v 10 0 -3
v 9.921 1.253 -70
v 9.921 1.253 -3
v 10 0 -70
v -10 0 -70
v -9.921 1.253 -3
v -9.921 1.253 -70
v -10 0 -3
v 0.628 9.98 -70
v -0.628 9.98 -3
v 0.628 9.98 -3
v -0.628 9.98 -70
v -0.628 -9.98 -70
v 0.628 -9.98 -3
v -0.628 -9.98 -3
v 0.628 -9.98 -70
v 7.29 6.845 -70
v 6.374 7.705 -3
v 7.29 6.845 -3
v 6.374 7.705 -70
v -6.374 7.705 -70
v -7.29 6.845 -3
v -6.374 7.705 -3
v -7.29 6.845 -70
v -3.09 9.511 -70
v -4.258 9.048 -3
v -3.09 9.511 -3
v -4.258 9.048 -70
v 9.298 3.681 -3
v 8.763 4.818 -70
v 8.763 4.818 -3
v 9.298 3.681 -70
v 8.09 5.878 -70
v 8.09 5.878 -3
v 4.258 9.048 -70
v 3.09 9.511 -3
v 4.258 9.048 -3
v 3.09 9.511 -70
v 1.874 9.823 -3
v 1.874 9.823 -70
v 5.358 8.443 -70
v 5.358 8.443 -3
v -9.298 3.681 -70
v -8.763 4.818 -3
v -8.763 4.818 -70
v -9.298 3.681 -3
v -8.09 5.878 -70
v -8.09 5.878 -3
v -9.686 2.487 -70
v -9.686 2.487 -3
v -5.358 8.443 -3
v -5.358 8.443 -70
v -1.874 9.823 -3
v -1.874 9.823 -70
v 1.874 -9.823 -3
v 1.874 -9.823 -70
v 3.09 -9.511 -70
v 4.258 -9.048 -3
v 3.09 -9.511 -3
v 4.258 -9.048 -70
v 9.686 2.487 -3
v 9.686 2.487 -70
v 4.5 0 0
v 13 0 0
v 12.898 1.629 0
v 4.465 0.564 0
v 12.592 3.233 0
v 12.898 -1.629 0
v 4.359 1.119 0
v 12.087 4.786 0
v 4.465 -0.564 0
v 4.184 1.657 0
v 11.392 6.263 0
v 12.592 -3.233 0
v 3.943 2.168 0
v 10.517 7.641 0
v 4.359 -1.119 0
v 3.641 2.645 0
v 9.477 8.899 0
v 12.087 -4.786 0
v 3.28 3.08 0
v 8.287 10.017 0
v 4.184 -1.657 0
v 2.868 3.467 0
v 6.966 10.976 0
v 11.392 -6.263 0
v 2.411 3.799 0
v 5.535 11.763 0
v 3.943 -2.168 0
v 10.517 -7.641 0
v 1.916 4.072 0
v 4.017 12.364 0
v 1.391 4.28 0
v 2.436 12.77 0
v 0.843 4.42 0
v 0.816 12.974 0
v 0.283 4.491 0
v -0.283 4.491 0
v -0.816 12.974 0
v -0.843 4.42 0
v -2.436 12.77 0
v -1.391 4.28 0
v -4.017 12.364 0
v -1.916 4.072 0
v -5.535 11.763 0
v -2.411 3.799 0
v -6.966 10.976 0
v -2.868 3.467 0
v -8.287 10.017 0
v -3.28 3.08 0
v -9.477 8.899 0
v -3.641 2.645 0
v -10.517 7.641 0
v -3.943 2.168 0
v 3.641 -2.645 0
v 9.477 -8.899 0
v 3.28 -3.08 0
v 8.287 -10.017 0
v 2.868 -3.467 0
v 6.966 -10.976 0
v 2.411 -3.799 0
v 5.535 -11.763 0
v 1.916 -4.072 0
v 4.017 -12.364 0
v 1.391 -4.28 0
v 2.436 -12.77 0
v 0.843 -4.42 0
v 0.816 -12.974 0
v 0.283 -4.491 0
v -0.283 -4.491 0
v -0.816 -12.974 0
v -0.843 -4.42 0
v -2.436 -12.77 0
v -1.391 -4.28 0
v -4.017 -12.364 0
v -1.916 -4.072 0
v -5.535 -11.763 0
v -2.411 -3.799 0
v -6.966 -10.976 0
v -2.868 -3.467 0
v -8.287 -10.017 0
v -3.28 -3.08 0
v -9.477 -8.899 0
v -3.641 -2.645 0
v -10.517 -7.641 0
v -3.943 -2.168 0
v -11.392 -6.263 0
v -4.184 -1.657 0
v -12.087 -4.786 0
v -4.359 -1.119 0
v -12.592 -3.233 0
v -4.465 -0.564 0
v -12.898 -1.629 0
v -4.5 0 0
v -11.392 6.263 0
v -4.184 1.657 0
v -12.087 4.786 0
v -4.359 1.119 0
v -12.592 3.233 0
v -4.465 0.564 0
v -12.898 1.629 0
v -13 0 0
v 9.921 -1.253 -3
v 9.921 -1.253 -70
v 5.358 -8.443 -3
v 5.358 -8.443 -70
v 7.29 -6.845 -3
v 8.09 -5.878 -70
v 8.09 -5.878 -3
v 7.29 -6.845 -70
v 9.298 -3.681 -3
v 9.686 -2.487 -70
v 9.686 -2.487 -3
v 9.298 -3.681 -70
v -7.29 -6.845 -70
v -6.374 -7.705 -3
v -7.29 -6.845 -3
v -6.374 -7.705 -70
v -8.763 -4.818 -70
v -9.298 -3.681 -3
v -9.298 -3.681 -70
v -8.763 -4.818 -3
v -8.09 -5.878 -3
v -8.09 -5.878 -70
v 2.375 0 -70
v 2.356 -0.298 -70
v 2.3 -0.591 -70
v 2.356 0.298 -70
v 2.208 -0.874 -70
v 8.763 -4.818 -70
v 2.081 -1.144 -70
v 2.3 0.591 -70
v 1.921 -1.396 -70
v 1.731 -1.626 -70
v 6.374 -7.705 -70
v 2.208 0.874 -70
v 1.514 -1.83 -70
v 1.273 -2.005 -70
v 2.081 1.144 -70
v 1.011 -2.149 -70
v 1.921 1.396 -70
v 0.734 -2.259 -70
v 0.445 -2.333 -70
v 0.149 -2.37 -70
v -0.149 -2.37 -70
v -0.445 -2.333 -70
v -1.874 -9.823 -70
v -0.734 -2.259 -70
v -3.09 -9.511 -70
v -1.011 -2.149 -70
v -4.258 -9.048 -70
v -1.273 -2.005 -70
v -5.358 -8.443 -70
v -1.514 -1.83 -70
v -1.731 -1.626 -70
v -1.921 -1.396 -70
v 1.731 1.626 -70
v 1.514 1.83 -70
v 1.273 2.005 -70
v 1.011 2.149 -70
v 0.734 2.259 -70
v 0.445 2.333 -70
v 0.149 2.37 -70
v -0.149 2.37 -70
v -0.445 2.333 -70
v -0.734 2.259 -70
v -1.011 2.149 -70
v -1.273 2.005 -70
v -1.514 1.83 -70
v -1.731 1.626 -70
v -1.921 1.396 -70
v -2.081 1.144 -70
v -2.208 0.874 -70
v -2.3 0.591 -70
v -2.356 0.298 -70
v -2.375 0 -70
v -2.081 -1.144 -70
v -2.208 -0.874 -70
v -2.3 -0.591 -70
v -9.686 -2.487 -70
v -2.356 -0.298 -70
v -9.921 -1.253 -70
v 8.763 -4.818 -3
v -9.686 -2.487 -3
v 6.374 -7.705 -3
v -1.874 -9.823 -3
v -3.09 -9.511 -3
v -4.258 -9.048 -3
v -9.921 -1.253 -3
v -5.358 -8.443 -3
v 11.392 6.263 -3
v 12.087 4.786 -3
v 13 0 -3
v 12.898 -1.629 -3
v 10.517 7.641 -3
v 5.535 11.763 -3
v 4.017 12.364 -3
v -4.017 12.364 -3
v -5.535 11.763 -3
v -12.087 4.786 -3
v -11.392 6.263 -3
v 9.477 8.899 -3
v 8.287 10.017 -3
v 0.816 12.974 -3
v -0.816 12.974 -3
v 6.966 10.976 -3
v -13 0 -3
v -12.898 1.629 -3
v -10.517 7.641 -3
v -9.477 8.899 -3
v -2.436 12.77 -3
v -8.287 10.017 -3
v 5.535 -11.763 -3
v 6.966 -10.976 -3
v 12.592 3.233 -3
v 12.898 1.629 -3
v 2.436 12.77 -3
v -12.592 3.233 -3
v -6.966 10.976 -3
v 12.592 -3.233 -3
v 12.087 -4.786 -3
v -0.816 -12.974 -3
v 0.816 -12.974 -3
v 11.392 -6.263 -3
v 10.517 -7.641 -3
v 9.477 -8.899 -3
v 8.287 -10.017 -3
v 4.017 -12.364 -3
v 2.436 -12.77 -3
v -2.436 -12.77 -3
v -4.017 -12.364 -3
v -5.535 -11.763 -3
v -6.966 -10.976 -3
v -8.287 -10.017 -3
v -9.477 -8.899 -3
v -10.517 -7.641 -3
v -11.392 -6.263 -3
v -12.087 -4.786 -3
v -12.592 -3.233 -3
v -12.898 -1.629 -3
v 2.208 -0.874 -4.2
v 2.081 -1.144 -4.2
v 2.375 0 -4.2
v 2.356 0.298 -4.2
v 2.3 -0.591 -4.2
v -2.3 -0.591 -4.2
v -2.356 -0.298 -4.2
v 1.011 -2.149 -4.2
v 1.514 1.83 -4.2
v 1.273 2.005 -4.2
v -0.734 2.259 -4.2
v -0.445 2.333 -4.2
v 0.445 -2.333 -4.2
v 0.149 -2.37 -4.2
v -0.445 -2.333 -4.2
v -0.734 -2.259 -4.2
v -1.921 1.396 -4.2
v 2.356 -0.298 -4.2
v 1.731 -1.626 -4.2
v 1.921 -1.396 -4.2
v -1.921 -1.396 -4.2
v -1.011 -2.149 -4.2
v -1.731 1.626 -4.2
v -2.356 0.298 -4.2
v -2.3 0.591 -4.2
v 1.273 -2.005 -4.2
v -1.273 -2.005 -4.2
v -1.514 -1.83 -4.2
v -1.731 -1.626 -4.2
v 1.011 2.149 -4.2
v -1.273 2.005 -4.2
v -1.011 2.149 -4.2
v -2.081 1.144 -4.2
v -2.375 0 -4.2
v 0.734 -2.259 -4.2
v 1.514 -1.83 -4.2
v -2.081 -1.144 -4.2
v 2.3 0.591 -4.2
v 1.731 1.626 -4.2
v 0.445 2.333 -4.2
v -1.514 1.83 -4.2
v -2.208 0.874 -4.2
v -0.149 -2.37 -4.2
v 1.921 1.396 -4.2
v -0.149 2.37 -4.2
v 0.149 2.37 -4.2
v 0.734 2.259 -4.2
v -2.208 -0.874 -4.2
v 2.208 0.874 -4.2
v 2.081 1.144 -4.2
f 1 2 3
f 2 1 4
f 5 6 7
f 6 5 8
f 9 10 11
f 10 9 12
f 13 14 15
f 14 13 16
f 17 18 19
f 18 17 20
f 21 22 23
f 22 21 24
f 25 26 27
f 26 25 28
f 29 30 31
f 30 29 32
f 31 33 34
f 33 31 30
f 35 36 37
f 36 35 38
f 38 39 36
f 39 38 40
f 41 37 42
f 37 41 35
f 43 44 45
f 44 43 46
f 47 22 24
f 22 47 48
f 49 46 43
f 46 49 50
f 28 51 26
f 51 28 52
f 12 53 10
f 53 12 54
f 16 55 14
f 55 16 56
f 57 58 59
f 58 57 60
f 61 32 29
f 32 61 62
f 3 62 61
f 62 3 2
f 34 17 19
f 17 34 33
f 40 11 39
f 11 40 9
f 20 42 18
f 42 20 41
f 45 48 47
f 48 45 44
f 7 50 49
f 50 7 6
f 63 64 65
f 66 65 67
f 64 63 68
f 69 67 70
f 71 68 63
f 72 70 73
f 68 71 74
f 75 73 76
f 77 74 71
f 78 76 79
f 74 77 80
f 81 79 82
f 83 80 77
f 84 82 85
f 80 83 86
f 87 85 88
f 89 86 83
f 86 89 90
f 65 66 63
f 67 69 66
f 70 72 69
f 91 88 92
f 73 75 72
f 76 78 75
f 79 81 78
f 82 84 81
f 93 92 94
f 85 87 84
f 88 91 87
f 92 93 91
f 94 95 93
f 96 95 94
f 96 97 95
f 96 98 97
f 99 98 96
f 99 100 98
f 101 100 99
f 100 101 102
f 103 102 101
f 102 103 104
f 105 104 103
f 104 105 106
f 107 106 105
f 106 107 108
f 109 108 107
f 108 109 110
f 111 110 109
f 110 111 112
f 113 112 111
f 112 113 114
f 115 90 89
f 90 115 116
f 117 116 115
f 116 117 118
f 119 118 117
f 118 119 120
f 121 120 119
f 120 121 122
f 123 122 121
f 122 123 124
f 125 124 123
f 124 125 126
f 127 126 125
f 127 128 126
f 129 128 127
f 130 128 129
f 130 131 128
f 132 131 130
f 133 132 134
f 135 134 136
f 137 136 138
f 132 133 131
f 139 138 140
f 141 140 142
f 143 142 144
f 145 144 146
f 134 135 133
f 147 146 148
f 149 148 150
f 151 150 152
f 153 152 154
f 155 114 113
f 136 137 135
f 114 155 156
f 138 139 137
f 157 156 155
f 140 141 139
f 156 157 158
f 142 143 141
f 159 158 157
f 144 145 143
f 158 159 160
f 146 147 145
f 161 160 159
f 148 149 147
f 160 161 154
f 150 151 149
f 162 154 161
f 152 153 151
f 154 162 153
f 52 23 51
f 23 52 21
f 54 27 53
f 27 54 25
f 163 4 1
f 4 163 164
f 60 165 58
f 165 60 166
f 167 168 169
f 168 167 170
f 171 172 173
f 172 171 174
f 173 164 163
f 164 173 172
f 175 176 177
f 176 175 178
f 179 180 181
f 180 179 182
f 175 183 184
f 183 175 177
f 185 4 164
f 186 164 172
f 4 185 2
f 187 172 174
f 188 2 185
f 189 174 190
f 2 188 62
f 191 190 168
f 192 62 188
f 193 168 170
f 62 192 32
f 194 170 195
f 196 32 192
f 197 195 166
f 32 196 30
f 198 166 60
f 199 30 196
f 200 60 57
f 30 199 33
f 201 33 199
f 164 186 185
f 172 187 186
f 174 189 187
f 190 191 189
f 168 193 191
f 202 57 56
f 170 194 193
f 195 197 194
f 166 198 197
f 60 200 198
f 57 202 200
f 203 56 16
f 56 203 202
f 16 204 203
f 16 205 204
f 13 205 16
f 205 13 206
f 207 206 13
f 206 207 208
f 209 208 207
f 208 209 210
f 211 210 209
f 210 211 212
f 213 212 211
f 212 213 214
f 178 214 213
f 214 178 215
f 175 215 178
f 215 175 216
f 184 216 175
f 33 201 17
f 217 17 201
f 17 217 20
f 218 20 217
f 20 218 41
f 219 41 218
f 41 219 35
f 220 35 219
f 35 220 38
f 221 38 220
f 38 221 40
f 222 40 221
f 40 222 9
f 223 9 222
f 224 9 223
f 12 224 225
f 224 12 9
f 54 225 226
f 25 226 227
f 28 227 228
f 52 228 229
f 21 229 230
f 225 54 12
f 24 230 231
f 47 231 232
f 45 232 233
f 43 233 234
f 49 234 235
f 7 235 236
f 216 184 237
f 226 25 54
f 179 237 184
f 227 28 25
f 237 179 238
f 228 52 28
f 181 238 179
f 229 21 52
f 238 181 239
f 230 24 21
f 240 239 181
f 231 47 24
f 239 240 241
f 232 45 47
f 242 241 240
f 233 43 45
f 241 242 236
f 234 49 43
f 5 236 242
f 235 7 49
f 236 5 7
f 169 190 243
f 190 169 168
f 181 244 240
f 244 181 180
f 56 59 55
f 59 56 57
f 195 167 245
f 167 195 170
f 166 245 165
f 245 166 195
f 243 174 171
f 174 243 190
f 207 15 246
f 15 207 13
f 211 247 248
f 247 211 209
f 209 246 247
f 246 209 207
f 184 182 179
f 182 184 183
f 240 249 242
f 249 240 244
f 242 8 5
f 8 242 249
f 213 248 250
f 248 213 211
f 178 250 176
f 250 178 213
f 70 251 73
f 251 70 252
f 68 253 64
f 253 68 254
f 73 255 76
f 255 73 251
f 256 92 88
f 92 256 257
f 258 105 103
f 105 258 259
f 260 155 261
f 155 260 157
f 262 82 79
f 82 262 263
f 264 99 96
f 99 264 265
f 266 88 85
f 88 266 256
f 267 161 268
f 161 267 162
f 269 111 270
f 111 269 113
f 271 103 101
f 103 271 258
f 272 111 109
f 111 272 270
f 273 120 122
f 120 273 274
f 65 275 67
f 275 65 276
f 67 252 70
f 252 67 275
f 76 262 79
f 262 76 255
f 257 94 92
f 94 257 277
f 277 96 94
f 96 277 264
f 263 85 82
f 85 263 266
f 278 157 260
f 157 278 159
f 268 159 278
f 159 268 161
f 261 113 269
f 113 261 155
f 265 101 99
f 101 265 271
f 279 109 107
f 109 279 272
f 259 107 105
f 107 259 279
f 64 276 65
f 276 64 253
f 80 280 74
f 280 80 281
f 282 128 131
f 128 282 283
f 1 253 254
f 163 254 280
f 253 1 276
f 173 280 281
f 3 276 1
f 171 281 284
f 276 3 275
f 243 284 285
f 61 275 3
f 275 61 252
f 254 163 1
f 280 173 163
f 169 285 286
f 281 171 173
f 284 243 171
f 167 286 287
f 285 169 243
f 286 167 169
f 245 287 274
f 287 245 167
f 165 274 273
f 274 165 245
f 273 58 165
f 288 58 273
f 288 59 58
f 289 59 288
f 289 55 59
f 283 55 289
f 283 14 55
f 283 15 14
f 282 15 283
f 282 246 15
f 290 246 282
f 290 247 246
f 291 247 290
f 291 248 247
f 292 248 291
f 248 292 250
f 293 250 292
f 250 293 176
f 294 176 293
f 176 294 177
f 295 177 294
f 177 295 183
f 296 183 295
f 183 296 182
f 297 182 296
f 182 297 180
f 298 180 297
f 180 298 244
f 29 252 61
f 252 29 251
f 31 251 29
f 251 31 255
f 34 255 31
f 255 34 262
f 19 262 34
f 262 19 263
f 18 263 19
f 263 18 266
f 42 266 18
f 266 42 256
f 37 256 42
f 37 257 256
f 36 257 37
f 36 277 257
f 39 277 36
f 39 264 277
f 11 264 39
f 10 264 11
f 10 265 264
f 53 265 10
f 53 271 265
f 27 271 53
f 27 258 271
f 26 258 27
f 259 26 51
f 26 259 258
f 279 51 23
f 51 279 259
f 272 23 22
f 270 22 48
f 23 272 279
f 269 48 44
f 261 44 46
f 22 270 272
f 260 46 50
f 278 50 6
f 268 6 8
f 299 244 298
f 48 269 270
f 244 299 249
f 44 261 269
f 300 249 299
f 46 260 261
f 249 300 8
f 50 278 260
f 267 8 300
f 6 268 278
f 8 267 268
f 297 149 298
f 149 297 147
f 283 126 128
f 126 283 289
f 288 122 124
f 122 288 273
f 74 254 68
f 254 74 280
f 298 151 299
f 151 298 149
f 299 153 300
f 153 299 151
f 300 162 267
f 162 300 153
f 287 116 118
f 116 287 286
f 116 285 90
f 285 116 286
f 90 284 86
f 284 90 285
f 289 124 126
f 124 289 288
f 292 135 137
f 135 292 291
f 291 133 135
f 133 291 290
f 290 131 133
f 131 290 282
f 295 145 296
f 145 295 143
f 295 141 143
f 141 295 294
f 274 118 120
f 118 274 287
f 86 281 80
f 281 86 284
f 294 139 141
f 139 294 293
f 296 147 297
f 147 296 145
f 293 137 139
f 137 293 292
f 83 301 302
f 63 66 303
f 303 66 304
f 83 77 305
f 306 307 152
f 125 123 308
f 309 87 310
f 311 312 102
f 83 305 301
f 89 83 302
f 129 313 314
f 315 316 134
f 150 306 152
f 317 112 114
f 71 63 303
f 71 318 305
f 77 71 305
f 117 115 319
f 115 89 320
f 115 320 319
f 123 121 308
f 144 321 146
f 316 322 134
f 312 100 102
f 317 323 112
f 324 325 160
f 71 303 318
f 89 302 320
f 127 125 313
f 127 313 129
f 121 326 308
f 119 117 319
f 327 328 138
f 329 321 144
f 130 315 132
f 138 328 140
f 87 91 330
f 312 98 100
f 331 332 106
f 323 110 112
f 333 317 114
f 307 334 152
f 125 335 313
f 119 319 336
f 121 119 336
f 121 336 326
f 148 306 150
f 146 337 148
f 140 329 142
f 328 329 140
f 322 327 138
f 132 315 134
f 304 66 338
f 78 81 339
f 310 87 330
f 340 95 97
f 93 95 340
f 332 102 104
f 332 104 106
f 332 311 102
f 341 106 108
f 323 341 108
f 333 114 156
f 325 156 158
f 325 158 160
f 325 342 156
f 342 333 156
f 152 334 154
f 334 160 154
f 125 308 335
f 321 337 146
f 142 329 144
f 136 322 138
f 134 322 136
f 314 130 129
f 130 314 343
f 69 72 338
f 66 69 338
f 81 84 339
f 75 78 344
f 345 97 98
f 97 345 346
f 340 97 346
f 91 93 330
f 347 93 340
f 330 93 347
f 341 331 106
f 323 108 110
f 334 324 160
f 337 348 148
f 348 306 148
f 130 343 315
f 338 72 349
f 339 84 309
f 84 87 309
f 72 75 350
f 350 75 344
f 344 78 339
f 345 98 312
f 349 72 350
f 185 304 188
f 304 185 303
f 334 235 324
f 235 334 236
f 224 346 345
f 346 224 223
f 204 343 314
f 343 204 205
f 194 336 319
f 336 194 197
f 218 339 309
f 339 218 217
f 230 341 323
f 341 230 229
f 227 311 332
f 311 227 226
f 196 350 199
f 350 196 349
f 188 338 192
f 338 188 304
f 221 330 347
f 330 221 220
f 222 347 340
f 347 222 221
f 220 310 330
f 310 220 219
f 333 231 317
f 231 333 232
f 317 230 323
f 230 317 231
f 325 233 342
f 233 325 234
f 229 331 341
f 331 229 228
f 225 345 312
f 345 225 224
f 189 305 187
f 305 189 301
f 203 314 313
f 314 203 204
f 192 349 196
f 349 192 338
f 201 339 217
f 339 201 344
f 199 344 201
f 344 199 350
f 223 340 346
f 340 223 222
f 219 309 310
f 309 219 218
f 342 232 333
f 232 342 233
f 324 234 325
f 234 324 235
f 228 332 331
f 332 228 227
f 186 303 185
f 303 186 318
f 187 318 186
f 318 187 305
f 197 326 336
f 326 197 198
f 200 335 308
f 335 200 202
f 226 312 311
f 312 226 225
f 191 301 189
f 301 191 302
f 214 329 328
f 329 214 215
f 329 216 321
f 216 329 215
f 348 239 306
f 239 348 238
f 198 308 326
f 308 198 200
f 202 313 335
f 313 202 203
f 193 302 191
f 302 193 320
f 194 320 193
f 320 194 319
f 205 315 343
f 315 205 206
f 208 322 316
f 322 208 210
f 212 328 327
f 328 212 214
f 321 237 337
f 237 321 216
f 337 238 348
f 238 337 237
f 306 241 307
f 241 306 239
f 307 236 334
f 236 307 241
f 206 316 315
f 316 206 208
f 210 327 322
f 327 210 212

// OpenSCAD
$fn = 50;


difference() {
	union() {
		translate(v = [0, 0, -70.0000000000]) {
			cylinder(h = 70, r = 10.0000000000);
		}
		translate(v = [0, 0, -3.0000000000]) {
			cylinder(h = 3, r = 13.0000000000);
		}
	}
	union() {
		translate(v = [0, 0, 0]) {
			rotate(a = [0, 0, 0]) {
				difference() {
					union() {
						#translate(v = [0, 0, -70.0000000000]) {
							cylinder(h = 70, r = 2.2500000000);
						}
						#translate(v = [0, 0, -4.2000000000]) {
							cylinder(h = 4.2000000000, r = 10.0000000000, r1 = 2.3750000000, r2 = 4.5000000000);
						}
						#translate(v = [0, 0, -70.0000000000]) {
							cylinder(h = 70, r = 2.3750000000);
						}
						#translate(v = [0, 0, -70.0000000000]) {
							cylinder(h = 70, r = 2.2500000000);
						}
					}
					union();
				}
			}
		}
	}
}
